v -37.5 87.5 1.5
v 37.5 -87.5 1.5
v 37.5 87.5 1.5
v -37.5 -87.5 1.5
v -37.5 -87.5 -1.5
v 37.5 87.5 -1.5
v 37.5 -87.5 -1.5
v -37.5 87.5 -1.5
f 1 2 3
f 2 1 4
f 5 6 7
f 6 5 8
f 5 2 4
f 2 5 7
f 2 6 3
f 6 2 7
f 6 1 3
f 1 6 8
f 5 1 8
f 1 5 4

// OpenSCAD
// ========================================
// a plate 75 mm wide 175 mm deep and 3 mm thick
// NeuroCAD canonical IR; dimensions are millimetres
// ========================================
$fn = 48;

cube(size=[75, 175, 3], center=true);
